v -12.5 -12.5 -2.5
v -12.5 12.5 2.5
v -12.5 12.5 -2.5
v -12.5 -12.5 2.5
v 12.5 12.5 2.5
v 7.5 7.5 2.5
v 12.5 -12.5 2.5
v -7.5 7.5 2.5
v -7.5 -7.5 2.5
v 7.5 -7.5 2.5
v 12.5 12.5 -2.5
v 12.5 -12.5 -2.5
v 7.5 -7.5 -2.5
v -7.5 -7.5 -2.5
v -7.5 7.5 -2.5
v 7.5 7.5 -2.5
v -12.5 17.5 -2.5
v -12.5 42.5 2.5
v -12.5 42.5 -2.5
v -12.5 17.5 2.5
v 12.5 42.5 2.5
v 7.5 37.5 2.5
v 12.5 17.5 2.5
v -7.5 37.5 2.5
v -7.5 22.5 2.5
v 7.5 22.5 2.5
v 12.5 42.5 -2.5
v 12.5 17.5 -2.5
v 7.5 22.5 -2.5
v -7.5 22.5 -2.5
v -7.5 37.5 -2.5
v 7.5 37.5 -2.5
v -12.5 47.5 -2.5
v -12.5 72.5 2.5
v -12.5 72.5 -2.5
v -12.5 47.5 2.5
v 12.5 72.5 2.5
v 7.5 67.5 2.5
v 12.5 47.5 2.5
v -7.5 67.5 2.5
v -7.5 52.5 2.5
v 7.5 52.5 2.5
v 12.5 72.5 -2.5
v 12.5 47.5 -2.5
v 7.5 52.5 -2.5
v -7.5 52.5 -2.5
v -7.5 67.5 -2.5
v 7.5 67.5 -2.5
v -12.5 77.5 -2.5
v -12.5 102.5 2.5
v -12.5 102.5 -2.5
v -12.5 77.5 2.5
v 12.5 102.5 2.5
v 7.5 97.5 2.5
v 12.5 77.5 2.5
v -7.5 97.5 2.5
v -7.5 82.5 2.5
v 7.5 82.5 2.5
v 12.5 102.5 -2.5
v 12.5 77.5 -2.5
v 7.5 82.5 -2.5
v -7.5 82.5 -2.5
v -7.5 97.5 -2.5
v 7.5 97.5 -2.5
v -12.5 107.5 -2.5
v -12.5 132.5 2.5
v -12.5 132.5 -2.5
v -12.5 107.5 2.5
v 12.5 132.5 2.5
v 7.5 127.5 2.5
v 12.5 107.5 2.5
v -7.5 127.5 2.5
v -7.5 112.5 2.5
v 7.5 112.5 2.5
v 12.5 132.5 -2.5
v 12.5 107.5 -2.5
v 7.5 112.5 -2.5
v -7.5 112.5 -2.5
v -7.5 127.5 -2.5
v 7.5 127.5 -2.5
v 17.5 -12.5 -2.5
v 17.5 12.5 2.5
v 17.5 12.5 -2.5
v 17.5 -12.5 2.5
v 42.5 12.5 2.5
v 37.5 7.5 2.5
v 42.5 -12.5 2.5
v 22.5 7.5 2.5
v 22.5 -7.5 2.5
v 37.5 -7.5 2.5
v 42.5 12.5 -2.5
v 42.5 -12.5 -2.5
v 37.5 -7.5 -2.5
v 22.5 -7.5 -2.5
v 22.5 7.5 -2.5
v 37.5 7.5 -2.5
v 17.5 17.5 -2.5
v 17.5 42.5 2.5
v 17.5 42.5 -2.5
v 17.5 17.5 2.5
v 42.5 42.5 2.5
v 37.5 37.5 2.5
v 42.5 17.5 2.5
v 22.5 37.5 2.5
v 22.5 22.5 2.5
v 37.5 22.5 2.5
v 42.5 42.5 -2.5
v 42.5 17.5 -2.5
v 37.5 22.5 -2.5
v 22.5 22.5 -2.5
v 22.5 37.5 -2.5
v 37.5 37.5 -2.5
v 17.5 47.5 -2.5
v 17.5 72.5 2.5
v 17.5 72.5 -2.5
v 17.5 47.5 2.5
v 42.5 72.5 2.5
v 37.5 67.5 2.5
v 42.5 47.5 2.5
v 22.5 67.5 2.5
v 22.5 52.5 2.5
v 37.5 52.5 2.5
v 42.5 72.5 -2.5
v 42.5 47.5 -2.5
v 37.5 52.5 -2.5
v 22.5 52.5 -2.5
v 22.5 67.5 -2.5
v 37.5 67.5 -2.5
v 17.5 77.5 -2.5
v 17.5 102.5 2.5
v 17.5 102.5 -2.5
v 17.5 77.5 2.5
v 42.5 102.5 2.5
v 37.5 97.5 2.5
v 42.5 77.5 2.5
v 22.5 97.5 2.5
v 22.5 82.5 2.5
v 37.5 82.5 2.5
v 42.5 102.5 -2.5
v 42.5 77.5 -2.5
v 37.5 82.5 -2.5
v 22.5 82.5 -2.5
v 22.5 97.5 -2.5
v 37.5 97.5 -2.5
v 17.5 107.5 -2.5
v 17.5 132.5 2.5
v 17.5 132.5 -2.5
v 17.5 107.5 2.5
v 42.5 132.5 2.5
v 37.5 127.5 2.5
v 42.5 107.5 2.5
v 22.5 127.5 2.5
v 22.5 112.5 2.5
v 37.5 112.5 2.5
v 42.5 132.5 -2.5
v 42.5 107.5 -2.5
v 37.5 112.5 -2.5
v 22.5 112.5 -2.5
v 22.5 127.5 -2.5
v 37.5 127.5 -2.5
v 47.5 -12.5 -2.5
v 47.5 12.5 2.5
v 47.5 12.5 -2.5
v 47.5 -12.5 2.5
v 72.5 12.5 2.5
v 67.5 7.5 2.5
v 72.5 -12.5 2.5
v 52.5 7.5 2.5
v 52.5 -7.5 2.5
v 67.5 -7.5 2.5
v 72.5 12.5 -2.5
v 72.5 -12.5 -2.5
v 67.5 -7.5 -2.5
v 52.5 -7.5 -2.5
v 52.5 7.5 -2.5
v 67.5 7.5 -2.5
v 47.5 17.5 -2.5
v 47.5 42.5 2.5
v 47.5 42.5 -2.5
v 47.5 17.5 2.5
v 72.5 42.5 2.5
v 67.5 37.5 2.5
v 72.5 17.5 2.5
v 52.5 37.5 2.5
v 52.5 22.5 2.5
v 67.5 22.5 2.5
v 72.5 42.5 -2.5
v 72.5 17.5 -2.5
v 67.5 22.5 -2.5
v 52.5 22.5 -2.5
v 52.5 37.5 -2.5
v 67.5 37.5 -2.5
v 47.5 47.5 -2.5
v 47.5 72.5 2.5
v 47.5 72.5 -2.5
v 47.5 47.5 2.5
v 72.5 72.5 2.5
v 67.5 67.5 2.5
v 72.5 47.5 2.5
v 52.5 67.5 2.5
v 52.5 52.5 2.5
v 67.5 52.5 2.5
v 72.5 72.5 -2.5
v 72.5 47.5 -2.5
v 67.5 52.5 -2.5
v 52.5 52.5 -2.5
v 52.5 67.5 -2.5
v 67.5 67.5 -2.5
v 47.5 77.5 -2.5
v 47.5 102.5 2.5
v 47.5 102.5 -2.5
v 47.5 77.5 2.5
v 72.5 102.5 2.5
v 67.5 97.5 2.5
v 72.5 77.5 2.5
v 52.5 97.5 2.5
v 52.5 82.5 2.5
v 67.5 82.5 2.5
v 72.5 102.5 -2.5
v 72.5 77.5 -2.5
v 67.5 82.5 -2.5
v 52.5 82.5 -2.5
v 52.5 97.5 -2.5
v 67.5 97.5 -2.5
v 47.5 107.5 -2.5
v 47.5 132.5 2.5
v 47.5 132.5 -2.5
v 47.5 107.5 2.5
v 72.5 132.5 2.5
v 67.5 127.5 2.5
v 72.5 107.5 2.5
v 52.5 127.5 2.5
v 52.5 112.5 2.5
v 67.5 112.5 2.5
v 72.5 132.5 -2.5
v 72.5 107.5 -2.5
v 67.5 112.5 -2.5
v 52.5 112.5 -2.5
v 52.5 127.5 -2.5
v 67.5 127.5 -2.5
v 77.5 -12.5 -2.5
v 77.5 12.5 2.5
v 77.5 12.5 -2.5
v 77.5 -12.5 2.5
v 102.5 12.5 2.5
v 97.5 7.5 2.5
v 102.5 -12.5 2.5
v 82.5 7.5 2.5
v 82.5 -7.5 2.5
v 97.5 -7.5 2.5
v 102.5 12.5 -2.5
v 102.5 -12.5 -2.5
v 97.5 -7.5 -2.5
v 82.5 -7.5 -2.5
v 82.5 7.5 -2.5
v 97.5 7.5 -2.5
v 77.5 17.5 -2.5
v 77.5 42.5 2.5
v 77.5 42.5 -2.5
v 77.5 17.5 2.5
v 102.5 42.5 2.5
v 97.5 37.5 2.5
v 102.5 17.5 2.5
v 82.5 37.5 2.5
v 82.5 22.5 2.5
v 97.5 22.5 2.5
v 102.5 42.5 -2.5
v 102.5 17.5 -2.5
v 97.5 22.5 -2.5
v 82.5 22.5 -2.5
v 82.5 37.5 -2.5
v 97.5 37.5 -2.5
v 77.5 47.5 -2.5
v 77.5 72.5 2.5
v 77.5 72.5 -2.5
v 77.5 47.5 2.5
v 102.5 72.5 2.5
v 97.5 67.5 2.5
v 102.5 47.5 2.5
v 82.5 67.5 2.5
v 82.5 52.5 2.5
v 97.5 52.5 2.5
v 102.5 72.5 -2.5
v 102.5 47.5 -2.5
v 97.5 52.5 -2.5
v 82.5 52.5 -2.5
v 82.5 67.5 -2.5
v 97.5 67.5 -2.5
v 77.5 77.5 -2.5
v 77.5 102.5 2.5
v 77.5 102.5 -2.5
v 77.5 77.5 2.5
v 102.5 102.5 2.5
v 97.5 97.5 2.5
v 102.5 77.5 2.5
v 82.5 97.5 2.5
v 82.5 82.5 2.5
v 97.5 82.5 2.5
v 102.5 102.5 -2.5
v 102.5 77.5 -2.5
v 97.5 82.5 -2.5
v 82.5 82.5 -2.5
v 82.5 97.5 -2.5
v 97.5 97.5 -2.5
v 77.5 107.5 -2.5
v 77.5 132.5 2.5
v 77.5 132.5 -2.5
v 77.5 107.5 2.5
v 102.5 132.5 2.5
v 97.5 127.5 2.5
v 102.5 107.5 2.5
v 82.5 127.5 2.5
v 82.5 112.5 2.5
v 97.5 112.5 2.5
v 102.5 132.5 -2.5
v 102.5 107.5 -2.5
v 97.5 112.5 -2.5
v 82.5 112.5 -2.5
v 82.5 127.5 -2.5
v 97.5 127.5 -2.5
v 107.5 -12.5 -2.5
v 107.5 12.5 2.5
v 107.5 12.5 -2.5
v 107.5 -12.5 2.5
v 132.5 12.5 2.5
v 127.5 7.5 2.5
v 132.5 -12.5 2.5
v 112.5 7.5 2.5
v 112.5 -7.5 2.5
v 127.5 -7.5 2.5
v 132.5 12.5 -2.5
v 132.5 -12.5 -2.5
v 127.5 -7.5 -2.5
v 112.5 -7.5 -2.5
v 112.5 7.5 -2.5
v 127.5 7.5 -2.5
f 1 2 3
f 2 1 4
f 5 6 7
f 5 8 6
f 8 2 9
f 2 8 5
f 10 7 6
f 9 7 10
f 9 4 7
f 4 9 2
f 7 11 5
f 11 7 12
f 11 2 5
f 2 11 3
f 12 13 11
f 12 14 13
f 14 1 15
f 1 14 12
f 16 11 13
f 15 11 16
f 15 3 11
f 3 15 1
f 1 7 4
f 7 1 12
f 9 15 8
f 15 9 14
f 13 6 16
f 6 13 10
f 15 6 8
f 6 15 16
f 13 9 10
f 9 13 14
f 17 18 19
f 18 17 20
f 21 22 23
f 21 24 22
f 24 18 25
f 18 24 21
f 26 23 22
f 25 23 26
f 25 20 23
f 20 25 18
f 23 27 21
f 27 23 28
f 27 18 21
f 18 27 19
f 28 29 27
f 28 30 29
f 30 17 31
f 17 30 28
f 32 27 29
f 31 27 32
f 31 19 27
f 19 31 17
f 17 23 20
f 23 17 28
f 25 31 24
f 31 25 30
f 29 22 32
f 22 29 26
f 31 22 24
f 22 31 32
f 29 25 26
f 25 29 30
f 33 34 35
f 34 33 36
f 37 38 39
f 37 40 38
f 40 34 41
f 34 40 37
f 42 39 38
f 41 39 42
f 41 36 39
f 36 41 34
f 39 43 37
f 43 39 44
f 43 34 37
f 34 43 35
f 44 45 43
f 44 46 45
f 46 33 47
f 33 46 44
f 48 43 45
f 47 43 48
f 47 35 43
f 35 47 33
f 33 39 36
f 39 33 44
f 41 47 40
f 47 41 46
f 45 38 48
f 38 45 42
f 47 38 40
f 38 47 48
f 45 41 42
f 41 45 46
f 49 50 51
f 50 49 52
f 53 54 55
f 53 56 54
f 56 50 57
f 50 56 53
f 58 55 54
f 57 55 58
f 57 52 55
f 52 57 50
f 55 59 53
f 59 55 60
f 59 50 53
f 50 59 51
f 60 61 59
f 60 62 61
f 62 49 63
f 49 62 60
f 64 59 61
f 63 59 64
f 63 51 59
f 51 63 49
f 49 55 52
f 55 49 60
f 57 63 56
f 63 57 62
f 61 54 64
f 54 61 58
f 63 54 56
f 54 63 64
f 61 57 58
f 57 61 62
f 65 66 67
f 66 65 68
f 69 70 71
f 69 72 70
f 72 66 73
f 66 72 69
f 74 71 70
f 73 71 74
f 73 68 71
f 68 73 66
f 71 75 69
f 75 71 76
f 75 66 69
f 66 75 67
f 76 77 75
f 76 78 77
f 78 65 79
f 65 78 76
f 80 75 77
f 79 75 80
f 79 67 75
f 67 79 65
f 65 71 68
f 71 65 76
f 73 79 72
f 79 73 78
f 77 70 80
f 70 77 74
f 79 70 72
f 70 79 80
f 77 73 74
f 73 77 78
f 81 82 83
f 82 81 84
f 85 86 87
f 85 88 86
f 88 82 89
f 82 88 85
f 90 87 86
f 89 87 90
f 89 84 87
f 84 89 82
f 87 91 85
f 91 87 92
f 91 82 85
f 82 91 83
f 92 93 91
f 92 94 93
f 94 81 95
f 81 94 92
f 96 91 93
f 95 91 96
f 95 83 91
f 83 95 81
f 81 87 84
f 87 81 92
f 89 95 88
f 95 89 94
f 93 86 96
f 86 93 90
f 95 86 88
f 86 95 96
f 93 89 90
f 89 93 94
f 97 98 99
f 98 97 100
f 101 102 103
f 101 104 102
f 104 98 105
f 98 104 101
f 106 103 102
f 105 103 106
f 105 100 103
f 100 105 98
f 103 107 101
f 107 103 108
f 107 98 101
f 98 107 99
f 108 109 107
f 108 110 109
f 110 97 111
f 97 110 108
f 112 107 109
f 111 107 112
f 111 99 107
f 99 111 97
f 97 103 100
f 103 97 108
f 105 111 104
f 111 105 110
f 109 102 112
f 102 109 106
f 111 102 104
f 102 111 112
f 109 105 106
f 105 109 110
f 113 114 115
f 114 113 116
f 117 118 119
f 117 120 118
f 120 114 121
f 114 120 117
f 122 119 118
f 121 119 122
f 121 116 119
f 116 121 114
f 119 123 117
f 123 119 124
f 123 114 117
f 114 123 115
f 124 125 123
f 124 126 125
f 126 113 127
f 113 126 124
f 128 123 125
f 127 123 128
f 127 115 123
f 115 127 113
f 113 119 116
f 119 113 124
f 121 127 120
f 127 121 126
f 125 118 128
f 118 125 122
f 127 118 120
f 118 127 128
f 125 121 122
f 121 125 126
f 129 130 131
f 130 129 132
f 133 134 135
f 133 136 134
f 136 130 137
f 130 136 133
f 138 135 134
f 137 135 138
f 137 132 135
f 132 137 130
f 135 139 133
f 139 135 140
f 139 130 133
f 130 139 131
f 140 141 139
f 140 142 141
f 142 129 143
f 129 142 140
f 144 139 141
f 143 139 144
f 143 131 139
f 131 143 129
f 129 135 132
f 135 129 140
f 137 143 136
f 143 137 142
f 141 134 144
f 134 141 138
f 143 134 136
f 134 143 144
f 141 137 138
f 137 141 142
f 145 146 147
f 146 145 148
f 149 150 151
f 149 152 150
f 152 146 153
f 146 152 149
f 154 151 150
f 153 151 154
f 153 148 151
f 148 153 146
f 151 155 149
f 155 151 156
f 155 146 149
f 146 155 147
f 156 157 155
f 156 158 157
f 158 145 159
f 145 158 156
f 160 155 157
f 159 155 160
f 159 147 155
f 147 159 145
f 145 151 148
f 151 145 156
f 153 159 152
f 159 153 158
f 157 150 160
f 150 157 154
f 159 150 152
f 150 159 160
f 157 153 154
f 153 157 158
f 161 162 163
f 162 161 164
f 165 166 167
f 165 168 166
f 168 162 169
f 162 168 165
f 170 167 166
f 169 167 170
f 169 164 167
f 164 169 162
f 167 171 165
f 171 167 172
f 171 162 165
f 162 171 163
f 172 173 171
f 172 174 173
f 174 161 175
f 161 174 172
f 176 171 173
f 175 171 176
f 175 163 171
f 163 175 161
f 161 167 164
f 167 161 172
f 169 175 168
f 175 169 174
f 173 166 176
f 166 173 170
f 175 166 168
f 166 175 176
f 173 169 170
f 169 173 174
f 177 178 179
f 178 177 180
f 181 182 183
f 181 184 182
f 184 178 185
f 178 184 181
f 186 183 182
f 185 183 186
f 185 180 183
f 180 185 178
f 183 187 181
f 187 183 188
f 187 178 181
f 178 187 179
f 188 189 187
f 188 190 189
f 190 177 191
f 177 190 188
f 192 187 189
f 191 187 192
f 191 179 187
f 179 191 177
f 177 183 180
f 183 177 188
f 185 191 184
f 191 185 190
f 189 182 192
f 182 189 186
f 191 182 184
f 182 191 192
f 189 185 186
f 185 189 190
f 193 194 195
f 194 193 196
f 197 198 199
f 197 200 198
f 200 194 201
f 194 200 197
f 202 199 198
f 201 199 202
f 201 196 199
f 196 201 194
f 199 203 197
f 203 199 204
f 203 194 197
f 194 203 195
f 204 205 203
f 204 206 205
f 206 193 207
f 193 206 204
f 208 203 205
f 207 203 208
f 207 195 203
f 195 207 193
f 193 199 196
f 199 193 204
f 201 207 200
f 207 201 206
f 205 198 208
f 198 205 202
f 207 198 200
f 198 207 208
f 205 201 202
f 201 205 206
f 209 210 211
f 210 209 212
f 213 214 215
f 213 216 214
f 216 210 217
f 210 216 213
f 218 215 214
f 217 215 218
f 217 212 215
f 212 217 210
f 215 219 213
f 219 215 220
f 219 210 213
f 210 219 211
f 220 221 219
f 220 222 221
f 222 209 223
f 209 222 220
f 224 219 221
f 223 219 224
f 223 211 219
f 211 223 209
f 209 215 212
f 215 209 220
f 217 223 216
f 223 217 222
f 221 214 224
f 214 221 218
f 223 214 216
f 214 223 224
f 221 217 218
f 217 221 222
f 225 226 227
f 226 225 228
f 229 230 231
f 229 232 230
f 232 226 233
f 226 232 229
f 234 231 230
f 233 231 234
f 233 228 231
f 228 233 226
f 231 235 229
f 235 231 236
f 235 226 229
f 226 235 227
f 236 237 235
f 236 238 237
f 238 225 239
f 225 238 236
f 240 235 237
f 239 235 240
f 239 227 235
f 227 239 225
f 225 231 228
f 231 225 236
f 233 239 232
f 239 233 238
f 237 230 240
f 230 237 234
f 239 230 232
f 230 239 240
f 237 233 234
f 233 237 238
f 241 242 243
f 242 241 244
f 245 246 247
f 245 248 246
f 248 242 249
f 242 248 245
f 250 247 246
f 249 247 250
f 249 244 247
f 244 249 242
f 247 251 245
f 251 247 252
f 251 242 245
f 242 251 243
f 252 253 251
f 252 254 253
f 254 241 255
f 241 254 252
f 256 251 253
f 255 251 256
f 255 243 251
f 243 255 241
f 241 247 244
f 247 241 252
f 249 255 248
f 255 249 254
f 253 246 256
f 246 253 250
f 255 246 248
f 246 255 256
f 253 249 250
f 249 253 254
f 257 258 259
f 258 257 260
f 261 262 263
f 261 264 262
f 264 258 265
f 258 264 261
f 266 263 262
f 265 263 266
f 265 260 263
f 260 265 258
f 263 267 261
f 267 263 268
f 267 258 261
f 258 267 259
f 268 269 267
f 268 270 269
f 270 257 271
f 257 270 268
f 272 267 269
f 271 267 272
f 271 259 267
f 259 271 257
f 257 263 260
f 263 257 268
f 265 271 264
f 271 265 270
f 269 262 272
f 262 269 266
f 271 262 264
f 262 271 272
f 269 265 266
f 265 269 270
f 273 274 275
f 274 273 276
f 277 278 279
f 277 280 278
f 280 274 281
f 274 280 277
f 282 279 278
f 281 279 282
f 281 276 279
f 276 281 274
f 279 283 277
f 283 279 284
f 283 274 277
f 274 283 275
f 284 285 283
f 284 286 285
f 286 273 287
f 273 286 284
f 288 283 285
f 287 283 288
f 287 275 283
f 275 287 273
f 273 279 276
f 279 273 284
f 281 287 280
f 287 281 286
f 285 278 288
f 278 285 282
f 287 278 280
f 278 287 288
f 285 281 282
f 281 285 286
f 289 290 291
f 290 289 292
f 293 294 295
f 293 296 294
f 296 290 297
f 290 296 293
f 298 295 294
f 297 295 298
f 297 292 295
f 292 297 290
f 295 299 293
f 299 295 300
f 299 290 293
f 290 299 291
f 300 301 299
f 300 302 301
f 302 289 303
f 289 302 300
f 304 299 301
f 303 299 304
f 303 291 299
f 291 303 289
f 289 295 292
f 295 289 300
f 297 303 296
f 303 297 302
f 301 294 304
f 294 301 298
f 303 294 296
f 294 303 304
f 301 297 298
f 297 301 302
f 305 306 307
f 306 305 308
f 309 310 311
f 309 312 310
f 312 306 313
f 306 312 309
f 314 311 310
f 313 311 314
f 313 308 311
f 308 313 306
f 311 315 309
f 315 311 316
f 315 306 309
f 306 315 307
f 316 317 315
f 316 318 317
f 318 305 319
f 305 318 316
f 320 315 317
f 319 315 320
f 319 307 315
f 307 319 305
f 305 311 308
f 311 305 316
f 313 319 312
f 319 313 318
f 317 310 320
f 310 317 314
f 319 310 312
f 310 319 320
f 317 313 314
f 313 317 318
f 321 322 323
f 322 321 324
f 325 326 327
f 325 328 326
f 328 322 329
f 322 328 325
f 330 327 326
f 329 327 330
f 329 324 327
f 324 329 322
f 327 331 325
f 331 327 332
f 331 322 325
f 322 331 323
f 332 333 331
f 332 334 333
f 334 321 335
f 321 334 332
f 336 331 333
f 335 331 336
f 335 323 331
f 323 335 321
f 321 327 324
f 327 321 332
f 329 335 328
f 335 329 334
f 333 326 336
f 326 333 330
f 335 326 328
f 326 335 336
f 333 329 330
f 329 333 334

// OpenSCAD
$fa=0.1;$fs=0.1;

$pawnHeight=5;
$pawnWidth=25;
$markDepth=2.5;
$markWidth=15;

module cop1() {
difference() {
cube([$pawnWidth, $pawnWidth, $pawnHeight], center=true);

translate([0, 0, -$pawnHeight/2+$markDepth/2])
cube([$markWidth, $markWidth, $markDepth], center=true);

translate([0, 0, $pawnHeight/2-$markDepth/2])
cube([$markWidth, $markWidth, $markDepth], center=true);
}
}

module cop2() {
difference() {
cube([$pawnWidth, $pawnWidth, $pawnHeight], center=true);

translate([0, 0, -$pawnHeight/2+$markDepth/2])
cylinder(d=$markWidth, h=$markDepth, center=true);

translate([0, 0, $pawnHeight/2-$markDepth/2])
cylinder(d=$markWidth, h=$markDepth, center=true);
}
}

for( i = [0:4])
for( j = [0:4])
translate([i*30, j*30, 0])
if(i<4 || j<1)
cop1();
